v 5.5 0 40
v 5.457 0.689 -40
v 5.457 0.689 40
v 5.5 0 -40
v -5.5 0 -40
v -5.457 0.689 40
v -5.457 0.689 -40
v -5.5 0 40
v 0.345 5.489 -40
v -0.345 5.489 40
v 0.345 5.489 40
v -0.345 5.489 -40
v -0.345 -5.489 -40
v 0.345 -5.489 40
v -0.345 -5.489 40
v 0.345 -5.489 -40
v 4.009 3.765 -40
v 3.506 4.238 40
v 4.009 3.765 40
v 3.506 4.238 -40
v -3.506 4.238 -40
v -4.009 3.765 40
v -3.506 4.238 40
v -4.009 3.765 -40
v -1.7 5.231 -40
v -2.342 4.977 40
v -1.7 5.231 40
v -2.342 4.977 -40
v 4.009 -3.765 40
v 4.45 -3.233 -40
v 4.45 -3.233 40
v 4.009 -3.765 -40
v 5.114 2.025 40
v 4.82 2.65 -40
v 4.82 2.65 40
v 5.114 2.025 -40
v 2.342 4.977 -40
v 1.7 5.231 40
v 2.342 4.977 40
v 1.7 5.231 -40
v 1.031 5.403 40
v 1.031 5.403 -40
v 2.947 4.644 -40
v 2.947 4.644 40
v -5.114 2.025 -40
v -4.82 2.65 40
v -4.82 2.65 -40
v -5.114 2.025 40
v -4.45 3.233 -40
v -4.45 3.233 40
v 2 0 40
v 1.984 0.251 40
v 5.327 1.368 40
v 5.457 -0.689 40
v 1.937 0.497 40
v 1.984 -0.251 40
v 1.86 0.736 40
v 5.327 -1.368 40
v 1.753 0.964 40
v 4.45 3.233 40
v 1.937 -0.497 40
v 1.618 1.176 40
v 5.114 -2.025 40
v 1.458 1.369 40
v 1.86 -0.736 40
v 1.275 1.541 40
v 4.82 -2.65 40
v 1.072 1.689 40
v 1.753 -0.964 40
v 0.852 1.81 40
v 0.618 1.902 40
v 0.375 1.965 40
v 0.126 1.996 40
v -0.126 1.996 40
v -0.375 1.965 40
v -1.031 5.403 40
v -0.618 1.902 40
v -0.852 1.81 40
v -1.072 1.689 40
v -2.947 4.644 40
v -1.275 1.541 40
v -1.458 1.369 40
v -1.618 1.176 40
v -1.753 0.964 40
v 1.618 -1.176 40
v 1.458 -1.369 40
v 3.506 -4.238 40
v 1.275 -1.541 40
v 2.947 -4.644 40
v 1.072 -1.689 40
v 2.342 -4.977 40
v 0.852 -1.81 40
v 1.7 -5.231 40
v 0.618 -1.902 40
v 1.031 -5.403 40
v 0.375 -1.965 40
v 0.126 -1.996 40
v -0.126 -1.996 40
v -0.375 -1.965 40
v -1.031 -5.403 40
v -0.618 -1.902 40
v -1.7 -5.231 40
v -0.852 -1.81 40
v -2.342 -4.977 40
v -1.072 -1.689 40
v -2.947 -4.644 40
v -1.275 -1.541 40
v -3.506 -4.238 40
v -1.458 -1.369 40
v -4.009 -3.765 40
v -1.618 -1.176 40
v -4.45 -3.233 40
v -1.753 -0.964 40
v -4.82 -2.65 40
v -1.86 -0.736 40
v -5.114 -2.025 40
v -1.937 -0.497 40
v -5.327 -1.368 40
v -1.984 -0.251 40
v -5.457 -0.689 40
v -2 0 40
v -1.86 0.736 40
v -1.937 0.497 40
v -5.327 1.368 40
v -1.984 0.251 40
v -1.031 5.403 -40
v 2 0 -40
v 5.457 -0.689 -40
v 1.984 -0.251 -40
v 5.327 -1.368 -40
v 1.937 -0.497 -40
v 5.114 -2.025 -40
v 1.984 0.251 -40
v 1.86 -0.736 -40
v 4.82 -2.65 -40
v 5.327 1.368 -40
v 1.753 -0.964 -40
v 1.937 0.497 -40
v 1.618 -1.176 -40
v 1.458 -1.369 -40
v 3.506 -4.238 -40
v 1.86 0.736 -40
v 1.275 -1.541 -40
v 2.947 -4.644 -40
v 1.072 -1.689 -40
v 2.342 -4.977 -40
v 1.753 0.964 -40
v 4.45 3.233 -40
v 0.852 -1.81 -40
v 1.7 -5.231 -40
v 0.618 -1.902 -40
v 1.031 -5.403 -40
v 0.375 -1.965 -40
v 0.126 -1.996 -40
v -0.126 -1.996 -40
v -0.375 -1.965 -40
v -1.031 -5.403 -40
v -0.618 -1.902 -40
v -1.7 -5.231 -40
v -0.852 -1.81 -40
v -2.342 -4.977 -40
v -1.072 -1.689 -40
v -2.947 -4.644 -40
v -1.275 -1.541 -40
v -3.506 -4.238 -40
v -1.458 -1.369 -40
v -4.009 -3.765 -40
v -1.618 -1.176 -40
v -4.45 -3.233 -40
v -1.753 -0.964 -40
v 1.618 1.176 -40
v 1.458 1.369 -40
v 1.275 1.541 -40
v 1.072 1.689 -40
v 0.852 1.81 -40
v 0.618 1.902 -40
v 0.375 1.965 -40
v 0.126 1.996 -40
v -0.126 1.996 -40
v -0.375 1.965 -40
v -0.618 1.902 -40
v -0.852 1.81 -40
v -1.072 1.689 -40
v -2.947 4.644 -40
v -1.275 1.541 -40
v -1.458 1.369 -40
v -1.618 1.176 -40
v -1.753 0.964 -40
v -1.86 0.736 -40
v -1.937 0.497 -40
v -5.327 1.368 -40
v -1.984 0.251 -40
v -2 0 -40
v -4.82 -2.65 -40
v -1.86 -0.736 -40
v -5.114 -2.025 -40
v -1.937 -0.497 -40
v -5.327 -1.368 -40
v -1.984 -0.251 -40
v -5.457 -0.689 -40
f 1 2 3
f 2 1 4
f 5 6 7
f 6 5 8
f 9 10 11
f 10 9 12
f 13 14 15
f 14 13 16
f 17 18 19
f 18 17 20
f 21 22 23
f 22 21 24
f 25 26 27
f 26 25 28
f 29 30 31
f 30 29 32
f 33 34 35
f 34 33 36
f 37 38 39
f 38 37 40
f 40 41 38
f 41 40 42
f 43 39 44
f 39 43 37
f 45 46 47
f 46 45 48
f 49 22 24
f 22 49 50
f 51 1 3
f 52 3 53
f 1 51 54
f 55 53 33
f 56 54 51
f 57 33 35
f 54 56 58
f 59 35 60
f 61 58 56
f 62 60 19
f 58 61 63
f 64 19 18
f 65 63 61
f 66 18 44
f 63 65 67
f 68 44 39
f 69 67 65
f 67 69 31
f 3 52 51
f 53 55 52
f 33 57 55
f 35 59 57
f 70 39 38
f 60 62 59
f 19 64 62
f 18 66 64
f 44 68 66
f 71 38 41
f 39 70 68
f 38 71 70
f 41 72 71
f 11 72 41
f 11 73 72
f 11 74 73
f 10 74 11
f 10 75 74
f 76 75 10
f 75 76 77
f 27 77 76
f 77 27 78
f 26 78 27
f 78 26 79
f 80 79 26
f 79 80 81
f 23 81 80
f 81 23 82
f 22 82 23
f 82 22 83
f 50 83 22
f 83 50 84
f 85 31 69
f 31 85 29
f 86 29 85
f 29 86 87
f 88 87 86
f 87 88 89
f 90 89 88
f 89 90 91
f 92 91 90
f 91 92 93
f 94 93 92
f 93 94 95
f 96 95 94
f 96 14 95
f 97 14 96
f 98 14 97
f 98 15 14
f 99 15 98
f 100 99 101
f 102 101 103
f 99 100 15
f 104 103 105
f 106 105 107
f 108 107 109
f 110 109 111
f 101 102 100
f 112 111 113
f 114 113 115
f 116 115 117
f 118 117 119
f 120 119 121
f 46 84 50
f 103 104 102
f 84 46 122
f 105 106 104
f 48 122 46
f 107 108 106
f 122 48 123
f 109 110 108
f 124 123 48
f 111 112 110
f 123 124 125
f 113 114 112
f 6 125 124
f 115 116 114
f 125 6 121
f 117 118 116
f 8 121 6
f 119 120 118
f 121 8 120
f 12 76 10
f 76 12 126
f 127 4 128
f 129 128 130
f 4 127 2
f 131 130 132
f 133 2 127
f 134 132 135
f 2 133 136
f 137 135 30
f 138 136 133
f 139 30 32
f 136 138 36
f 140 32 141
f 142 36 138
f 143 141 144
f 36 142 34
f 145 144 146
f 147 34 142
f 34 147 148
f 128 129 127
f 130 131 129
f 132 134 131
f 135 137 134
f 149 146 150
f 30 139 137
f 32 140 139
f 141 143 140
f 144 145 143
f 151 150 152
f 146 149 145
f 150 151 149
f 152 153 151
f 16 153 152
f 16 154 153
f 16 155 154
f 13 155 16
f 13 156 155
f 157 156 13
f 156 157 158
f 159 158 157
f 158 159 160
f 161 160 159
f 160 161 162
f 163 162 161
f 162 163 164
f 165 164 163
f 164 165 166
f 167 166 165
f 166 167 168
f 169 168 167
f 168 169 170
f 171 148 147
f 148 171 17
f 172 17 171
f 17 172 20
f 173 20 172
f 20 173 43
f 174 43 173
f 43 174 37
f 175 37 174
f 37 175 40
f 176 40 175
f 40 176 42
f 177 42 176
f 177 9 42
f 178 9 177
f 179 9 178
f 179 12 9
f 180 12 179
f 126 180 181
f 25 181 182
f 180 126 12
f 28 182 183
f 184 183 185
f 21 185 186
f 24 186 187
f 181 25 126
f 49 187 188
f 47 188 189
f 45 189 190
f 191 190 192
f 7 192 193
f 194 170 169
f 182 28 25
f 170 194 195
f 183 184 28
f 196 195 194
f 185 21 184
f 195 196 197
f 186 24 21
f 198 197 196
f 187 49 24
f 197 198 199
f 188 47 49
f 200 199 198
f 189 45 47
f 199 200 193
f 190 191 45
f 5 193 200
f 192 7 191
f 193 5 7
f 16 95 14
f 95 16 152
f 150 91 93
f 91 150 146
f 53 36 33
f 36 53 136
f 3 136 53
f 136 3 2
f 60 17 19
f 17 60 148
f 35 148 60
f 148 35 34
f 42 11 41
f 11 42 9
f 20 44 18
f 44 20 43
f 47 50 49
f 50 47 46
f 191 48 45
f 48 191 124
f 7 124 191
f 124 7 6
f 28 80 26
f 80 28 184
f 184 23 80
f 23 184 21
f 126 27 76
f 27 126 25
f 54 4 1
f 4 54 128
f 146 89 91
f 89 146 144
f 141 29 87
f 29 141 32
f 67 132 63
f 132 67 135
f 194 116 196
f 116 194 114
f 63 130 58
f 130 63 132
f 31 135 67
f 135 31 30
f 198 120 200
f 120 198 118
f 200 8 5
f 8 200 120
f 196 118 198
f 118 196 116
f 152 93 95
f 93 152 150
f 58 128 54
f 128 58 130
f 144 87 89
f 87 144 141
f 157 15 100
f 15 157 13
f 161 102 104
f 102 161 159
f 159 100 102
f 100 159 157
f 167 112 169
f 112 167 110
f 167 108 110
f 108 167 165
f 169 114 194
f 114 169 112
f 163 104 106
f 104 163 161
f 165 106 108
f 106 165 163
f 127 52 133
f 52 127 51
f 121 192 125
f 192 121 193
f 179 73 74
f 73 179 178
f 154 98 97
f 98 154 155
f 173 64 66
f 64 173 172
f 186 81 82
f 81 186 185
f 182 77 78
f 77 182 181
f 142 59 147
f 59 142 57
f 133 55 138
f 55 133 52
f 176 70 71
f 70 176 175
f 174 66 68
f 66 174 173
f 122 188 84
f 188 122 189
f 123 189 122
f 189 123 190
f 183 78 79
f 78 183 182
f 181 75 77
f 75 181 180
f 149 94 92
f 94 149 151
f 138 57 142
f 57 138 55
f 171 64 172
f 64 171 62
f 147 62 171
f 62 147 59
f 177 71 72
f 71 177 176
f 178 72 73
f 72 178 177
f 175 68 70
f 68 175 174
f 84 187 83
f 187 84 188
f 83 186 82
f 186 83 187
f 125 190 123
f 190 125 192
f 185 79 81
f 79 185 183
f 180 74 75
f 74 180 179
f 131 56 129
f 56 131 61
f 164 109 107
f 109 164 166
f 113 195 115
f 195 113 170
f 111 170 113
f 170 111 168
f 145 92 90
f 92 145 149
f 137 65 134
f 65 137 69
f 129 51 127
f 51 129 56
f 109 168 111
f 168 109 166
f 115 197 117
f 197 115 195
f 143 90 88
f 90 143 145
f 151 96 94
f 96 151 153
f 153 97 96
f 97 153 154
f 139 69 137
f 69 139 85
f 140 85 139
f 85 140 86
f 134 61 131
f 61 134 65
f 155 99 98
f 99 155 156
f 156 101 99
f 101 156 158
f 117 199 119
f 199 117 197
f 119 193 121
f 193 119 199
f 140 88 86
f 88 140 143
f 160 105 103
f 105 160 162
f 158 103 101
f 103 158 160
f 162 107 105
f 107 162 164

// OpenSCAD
$fn = 50;


difference() {
	union() {
		translate(v = [0, 0, -40.0000000000]) {
			cylinder(h = 80, r = 5.5000000000);
		}
	}
	union() {
		translate(v = [0, 0, -100.0000000000]) {
			cylinder(h = 200, r = 2);
		}
	}
}
